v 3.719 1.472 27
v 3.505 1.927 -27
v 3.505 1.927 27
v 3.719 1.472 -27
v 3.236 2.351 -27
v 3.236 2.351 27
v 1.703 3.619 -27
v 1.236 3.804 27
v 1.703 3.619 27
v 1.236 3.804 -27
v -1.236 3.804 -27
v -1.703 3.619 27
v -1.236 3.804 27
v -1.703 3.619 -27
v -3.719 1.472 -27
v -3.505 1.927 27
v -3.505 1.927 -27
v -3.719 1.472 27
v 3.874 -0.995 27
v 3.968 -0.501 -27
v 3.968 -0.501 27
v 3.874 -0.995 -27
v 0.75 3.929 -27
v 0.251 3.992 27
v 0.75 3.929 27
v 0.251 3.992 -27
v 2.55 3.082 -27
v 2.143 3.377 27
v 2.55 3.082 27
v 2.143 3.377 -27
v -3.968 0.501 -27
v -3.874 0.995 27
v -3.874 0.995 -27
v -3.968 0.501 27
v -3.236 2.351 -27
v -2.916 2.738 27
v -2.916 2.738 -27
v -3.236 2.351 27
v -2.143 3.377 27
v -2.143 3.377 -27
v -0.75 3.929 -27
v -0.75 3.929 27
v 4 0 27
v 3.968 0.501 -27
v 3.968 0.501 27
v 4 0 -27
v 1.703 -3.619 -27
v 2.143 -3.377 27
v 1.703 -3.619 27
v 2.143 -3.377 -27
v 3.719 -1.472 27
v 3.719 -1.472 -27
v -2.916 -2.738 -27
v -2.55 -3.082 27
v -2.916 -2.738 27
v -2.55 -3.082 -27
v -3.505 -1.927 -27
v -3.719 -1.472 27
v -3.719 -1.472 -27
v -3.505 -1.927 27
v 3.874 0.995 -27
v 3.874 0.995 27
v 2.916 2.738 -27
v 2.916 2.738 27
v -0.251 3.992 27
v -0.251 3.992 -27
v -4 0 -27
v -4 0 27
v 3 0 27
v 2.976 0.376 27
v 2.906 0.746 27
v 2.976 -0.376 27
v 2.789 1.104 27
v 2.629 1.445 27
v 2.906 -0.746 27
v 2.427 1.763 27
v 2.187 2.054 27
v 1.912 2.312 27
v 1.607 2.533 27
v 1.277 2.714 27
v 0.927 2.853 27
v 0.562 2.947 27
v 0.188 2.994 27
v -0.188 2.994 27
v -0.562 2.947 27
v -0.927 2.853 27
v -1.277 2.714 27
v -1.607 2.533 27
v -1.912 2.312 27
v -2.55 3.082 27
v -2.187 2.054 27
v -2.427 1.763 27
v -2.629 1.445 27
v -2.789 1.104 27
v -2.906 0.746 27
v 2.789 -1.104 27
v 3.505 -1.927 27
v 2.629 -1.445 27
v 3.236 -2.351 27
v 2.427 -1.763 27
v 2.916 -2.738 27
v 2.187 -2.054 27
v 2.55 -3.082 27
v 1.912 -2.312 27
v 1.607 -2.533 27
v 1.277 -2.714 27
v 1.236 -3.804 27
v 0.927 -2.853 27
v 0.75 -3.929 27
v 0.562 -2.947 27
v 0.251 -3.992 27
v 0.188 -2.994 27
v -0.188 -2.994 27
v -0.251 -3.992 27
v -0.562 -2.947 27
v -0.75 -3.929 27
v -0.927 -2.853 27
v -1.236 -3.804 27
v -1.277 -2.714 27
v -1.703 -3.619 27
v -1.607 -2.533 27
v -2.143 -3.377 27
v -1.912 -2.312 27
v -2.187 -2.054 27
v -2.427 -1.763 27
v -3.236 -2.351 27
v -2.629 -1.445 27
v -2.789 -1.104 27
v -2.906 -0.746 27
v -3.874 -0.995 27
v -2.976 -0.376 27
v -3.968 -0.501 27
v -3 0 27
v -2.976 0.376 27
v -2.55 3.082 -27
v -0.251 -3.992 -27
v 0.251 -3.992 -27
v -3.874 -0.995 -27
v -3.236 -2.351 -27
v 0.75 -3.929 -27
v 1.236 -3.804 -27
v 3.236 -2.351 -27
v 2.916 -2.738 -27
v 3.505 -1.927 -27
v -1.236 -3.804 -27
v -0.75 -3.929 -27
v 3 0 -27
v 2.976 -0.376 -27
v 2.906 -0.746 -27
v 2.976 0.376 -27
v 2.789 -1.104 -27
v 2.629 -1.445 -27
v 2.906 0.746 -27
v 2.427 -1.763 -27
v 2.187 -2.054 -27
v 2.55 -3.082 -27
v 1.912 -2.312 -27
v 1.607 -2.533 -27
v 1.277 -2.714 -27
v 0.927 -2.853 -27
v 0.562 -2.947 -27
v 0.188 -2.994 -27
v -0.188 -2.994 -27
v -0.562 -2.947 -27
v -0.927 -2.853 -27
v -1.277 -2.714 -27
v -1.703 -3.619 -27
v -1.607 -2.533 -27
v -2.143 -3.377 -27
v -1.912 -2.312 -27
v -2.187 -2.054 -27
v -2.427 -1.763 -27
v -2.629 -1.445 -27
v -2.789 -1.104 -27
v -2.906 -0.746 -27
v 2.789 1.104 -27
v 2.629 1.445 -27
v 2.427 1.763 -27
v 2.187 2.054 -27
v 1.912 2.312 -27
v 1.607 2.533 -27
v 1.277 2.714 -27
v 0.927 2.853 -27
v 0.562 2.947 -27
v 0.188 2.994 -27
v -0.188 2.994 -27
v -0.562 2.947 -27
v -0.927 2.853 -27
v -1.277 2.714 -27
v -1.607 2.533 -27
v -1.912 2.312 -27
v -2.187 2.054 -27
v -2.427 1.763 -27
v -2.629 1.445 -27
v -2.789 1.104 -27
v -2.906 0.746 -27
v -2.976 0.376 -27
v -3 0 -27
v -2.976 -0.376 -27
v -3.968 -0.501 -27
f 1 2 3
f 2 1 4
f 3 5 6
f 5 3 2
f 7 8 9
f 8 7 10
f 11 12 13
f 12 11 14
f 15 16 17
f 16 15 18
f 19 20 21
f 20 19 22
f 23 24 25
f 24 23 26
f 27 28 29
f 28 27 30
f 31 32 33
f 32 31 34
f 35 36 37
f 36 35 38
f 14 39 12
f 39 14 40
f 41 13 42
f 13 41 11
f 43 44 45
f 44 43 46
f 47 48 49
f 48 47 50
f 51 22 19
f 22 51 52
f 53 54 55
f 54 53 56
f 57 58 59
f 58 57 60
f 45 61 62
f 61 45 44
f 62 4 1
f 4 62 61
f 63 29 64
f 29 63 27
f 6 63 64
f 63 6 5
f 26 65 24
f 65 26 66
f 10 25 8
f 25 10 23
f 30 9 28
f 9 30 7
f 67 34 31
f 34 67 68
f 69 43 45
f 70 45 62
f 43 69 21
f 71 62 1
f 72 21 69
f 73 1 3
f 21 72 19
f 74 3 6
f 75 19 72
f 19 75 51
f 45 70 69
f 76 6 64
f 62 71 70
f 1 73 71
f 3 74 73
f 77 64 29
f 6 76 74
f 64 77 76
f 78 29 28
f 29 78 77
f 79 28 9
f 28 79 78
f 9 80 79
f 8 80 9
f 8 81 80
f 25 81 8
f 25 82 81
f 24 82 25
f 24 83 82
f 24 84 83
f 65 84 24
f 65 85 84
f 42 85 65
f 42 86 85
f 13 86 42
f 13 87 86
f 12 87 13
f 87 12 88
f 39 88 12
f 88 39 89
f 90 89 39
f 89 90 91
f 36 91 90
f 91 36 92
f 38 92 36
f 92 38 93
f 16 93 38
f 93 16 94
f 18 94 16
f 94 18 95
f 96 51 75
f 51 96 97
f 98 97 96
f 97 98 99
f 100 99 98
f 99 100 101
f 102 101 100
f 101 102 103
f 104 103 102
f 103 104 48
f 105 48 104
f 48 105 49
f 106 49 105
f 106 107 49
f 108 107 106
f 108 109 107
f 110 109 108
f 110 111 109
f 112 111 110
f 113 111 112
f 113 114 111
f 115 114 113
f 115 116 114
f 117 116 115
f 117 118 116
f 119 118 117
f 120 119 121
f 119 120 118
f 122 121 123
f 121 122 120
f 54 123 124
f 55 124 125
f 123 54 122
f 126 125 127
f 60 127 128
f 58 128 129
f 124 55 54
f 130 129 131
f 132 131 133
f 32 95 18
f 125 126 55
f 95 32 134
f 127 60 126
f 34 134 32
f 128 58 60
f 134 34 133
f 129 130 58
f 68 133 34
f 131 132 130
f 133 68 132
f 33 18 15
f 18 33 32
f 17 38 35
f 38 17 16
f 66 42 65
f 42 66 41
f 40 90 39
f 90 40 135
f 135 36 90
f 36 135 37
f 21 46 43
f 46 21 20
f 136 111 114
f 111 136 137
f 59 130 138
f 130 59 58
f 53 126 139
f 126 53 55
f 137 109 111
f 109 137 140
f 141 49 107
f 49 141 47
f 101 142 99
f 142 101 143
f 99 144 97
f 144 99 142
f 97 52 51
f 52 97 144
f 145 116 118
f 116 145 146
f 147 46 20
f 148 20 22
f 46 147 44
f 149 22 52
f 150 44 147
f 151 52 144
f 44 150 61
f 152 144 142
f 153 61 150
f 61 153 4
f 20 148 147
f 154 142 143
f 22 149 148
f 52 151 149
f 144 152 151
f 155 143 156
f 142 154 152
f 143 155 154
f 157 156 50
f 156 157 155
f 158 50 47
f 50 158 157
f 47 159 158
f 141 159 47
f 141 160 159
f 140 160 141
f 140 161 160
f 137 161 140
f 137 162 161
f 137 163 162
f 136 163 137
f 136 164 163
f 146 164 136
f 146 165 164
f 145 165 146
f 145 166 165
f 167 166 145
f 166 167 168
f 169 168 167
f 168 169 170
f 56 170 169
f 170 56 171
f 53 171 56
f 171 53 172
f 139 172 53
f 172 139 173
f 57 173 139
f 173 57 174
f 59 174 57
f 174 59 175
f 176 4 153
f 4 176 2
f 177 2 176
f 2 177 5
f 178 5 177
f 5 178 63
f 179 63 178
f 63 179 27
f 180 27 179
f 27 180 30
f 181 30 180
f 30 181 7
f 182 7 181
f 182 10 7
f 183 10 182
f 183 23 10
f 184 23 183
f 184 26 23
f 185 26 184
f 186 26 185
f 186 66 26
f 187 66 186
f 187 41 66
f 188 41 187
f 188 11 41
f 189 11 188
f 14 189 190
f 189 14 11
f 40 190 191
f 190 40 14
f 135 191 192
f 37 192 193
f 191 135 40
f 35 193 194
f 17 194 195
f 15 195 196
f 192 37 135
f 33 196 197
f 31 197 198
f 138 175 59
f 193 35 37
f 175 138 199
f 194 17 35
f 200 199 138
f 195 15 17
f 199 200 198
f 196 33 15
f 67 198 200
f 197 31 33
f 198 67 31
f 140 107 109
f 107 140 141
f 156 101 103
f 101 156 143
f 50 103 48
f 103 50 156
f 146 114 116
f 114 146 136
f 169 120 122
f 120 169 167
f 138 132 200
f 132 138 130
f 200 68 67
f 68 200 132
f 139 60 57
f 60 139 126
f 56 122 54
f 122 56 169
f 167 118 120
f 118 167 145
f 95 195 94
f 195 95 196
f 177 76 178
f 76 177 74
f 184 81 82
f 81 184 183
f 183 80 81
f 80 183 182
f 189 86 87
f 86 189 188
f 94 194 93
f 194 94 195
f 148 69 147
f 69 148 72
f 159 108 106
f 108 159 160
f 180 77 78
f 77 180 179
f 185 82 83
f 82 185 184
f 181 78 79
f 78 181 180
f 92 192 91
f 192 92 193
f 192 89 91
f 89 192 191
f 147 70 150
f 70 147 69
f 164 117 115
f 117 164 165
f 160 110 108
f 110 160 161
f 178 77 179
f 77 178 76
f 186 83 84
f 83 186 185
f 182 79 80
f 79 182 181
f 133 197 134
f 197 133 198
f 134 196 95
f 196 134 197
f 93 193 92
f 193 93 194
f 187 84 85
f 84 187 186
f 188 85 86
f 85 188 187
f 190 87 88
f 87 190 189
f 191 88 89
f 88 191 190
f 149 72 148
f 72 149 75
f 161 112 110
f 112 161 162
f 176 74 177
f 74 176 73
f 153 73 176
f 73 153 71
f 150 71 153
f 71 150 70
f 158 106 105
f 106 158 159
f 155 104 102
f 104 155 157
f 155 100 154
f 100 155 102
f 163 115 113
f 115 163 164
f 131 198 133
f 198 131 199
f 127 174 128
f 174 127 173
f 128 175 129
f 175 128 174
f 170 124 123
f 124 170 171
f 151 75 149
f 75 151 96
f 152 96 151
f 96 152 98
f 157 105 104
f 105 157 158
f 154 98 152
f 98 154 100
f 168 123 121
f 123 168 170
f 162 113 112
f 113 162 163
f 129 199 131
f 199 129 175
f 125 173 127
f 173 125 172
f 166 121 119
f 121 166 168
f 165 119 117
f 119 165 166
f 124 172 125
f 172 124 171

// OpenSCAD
$fn = 50;


difference() {
	union() {
		translate(v = [0, 0, -27.0000000000]) {
			cylinder(h = 54, r = 4.0000000000);
		}
	}
	union() {
		translate(v = [0, 0, -100.0000000000]) {
			cylinder(h = 200, r = 3);
		}
	}
}
